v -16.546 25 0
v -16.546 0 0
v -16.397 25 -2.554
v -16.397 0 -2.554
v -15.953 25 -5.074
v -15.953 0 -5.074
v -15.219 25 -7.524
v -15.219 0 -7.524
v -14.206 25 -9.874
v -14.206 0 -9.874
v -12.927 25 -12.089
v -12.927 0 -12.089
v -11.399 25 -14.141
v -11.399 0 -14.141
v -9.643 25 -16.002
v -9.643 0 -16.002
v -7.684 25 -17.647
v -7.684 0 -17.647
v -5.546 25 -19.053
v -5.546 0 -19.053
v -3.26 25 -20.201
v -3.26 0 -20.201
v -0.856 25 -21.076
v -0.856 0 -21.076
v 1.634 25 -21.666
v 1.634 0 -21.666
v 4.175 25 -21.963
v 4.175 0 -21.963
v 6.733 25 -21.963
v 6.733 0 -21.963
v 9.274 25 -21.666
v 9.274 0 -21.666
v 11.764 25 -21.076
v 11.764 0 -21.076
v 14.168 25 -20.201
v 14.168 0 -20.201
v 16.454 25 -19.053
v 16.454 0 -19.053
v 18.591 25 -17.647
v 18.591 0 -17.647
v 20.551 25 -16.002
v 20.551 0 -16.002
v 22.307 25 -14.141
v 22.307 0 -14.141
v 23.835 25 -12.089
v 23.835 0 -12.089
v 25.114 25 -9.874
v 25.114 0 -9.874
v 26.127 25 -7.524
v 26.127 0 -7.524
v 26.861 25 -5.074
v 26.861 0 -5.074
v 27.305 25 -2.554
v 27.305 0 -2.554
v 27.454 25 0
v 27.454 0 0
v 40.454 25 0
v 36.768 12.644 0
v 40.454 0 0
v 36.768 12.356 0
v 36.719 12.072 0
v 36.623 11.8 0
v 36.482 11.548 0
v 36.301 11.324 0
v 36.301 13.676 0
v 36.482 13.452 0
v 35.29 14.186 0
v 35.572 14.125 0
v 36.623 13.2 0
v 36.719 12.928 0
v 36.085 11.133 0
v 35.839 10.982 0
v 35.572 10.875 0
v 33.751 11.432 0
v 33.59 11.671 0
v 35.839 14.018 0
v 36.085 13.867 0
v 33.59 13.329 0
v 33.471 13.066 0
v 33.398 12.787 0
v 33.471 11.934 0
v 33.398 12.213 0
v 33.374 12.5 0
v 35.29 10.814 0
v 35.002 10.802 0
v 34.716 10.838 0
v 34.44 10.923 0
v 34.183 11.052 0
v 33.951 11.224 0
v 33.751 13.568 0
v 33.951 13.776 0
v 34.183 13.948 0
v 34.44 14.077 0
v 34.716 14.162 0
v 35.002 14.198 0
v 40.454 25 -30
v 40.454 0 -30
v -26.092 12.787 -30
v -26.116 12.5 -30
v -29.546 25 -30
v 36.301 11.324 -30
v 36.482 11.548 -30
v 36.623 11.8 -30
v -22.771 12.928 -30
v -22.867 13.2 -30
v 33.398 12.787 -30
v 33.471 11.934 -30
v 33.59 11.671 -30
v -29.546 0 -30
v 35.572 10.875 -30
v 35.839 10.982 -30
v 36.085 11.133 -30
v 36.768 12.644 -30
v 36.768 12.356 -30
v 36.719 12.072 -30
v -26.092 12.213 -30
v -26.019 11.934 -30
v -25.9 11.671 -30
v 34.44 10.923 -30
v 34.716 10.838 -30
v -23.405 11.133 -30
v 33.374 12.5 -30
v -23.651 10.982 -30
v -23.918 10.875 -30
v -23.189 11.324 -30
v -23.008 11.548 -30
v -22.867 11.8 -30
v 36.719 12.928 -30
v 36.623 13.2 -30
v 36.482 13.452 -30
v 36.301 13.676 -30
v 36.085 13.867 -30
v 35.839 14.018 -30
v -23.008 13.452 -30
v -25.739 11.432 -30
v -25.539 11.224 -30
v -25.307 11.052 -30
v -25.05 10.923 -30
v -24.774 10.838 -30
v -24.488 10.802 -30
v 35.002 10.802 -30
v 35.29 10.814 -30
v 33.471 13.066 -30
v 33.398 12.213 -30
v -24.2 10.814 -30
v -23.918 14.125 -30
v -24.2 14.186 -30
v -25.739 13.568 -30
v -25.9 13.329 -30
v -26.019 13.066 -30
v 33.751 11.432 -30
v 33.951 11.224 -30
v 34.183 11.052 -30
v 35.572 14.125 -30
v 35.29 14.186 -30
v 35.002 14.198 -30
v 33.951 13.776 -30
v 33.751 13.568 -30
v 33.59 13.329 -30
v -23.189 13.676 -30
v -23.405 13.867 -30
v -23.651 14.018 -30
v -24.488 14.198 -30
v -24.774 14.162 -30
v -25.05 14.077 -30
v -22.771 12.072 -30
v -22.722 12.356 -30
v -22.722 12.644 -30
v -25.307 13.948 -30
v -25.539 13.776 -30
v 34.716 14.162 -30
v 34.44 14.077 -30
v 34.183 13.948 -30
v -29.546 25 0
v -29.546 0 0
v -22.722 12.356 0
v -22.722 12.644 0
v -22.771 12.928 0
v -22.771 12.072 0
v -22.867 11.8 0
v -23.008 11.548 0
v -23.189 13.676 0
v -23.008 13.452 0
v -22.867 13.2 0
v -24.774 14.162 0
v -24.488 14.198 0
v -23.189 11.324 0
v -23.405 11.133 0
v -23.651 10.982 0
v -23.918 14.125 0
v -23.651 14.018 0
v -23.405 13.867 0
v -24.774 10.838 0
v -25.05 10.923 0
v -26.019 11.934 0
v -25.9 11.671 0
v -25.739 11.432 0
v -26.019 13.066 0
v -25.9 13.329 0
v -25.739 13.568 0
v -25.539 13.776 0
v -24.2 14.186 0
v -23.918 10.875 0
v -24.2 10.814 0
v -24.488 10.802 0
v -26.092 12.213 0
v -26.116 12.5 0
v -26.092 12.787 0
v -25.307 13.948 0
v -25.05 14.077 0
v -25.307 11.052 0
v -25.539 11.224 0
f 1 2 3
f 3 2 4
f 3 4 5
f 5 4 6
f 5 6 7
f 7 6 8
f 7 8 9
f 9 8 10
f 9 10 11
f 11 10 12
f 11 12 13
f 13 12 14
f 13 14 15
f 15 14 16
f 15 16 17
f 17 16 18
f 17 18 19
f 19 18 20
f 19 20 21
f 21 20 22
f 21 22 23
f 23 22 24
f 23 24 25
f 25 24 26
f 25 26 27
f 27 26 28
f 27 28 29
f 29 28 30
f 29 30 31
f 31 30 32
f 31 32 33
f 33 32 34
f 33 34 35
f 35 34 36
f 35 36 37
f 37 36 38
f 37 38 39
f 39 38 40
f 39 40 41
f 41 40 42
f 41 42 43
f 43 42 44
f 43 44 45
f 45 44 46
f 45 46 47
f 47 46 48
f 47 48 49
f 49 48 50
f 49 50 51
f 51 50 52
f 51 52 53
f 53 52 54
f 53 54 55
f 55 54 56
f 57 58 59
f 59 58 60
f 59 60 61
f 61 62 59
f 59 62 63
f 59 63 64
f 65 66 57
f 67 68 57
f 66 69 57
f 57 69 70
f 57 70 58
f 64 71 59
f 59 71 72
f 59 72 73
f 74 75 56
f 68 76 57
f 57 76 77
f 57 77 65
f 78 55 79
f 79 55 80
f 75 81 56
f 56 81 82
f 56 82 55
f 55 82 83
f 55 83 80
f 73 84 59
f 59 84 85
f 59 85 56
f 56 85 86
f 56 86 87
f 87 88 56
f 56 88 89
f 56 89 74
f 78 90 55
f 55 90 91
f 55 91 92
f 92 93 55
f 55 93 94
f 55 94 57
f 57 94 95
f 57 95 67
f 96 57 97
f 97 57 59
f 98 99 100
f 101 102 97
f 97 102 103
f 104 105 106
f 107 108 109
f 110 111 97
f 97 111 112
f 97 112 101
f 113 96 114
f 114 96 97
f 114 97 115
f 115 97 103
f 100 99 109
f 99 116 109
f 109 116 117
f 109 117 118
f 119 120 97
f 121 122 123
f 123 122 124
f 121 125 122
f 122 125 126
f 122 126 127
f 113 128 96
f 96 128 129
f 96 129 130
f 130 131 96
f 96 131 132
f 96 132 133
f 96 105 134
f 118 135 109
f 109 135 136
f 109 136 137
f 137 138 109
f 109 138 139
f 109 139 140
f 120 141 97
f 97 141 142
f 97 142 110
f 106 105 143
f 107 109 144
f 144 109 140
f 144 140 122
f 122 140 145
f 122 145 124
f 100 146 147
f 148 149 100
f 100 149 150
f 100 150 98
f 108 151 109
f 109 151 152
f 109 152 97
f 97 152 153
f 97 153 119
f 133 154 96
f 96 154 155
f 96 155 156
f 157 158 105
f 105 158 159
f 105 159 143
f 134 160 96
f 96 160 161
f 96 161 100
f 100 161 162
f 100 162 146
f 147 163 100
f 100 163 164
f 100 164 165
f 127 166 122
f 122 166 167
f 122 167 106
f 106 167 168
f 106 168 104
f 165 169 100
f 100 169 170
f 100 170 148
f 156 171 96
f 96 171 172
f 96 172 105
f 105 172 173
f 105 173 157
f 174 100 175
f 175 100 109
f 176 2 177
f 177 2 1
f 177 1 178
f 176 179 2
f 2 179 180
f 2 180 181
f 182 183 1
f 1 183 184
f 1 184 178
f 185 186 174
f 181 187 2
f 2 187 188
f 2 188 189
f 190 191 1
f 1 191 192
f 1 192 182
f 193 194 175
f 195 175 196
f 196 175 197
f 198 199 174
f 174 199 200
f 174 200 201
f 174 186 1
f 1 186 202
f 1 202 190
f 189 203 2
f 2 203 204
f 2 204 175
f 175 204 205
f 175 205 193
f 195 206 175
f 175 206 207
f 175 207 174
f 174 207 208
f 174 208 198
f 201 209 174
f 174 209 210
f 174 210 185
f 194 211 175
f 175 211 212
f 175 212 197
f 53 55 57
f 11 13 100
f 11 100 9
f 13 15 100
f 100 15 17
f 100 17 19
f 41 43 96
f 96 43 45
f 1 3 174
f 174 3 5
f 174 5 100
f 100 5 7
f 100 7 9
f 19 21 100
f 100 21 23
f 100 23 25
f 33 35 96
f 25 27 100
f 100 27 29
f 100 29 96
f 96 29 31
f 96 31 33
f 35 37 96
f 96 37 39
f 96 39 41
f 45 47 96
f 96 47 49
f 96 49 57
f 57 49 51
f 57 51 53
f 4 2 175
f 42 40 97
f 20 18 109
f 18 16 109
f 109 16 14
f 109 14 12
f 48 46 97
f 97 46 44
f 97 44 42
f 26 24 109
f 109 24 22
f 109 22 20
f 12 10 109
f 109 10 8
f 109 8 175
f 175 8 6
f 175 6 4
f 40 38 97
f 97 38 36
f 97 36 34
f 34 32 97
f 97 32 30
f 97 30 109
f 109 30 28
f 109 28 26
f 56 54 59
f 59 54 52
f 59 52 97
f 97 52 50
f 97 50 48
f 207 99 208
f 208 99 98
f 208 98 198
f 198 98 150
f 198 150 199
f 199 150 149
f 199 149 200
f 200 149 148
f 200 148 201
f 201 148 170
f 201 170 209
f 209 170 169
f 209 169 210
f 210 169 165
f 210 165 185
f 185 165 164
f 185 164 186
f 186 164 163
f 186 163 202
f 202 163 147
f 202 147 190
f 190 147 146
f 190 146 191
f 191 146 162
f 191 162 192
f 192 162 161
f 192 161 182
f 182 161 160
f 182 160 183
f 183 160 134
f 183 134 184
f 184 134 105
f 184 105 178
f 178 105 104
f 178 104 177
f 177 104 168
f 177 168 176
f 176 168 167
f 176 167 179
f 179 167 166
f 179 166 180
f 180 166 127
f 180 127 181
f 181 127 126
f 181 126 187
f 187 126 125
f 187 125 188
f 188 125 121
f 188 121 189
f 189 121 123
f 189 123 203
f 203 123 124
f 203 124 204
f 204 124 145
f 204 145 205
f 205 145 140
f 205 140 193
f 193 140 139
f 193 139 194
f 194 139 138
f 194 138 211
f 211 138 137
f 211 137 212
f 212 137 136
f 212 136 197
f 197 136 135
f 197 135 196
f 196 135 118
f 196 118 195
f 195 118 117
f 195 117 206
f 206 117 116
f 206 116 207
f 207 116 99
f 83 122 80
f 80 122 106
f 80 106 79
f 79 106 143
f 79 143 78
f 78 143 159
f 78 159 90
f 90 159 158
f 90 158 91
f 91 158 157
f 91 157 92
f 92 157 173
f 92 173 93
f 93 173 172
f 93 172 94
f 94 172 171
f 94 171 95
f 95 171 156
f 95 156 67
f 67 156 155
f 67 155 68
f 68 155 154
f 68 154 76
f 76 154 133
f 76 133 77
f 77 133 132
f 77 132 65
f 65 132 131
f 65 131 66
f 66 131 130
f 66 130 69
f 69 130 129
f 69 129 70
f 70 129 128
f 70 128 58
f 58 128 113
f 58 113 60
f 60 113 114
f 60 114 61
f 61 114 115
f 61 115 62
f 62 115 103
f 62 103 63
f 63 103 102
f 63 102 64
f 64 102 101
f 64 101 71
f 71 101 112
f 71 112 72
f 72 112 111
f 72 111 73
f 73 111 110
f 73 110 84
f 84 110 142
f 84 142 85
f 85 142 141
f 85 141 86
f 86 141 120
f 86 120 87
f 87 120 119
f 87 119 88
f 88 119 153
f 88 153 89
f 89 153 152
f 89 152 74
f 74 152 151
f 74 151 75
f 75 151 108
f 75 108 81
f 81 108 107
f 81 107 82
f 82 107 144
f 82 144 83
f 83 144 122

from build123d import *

# Parameters (mm, degrees)
BOSS_EXTRUDE1_DEPTH = 25
SKETCH3_R           = 1.7
BOSS_EXTRUDE2_DEPTH = 30
SKETCH3_2_R         = 1.7
CUT_EXTRUDE1_DEPTH  = 30


with BuildPart() as part:
    # Sketch1 → Boss-Extrude1 (new body)
    with BuildSketch(Plane(origin=(0, 0, 0), x_dir=(1, 0, 0), z_dir=(0, 1, 0))):
        with BuildLine():
            Line((-29.546079231, 30), (-29.546079231, 0))
            Line((-29.546079231, 0), (-16.546079231, 0))
            ThreePointArc((-16.546079231, 0), (5.453920769, 22), (27.453920769, 0))
            Line((27.453920769, 0), (40.453920769, 0))
            Line((40.453920769, 0), (40.453920769, 30))
            Line((40.453920769, 30), (-29.546079231, 30))
        make_face()
    extrude(amount=BOSS_EXTRUDE1_DEPTH)

    # Sketch3 → Boss-Extrude2 (add)
    with BuildSketch(Plane(origin=(0, 0, -30), x_dir=(-1, 0, 0), z_dir=(0, 0, -1))):
        with Locations((-35.073920769, 12.5)):
            Circle(SKETCH3_R)
        with Locations((24.416079231, 12.5)):
            Circle(SKETCH3_R)
    extrude(amount=-BOSS_EXTRUDE2_DEPTH)

    # Sketch3<2> → Cut-Extrude1 (cut)
    with BuildSketch(Plane(origin=(0, 0, -30), x_dir=(-1, 0, 0), z_dir=(0, 0, -1))):
        with Locations((-35.073920769, 12.5)):
            Circle(SKETCH3_2_R)
        with Locations((24.416079231, 12.5)):
            Circle(SKETCH3_2_R)
    extrude(amount=-CUT_EXTRUDE1_DEPTH, mode=Mode.SUBTRACT)


solid = part.part
